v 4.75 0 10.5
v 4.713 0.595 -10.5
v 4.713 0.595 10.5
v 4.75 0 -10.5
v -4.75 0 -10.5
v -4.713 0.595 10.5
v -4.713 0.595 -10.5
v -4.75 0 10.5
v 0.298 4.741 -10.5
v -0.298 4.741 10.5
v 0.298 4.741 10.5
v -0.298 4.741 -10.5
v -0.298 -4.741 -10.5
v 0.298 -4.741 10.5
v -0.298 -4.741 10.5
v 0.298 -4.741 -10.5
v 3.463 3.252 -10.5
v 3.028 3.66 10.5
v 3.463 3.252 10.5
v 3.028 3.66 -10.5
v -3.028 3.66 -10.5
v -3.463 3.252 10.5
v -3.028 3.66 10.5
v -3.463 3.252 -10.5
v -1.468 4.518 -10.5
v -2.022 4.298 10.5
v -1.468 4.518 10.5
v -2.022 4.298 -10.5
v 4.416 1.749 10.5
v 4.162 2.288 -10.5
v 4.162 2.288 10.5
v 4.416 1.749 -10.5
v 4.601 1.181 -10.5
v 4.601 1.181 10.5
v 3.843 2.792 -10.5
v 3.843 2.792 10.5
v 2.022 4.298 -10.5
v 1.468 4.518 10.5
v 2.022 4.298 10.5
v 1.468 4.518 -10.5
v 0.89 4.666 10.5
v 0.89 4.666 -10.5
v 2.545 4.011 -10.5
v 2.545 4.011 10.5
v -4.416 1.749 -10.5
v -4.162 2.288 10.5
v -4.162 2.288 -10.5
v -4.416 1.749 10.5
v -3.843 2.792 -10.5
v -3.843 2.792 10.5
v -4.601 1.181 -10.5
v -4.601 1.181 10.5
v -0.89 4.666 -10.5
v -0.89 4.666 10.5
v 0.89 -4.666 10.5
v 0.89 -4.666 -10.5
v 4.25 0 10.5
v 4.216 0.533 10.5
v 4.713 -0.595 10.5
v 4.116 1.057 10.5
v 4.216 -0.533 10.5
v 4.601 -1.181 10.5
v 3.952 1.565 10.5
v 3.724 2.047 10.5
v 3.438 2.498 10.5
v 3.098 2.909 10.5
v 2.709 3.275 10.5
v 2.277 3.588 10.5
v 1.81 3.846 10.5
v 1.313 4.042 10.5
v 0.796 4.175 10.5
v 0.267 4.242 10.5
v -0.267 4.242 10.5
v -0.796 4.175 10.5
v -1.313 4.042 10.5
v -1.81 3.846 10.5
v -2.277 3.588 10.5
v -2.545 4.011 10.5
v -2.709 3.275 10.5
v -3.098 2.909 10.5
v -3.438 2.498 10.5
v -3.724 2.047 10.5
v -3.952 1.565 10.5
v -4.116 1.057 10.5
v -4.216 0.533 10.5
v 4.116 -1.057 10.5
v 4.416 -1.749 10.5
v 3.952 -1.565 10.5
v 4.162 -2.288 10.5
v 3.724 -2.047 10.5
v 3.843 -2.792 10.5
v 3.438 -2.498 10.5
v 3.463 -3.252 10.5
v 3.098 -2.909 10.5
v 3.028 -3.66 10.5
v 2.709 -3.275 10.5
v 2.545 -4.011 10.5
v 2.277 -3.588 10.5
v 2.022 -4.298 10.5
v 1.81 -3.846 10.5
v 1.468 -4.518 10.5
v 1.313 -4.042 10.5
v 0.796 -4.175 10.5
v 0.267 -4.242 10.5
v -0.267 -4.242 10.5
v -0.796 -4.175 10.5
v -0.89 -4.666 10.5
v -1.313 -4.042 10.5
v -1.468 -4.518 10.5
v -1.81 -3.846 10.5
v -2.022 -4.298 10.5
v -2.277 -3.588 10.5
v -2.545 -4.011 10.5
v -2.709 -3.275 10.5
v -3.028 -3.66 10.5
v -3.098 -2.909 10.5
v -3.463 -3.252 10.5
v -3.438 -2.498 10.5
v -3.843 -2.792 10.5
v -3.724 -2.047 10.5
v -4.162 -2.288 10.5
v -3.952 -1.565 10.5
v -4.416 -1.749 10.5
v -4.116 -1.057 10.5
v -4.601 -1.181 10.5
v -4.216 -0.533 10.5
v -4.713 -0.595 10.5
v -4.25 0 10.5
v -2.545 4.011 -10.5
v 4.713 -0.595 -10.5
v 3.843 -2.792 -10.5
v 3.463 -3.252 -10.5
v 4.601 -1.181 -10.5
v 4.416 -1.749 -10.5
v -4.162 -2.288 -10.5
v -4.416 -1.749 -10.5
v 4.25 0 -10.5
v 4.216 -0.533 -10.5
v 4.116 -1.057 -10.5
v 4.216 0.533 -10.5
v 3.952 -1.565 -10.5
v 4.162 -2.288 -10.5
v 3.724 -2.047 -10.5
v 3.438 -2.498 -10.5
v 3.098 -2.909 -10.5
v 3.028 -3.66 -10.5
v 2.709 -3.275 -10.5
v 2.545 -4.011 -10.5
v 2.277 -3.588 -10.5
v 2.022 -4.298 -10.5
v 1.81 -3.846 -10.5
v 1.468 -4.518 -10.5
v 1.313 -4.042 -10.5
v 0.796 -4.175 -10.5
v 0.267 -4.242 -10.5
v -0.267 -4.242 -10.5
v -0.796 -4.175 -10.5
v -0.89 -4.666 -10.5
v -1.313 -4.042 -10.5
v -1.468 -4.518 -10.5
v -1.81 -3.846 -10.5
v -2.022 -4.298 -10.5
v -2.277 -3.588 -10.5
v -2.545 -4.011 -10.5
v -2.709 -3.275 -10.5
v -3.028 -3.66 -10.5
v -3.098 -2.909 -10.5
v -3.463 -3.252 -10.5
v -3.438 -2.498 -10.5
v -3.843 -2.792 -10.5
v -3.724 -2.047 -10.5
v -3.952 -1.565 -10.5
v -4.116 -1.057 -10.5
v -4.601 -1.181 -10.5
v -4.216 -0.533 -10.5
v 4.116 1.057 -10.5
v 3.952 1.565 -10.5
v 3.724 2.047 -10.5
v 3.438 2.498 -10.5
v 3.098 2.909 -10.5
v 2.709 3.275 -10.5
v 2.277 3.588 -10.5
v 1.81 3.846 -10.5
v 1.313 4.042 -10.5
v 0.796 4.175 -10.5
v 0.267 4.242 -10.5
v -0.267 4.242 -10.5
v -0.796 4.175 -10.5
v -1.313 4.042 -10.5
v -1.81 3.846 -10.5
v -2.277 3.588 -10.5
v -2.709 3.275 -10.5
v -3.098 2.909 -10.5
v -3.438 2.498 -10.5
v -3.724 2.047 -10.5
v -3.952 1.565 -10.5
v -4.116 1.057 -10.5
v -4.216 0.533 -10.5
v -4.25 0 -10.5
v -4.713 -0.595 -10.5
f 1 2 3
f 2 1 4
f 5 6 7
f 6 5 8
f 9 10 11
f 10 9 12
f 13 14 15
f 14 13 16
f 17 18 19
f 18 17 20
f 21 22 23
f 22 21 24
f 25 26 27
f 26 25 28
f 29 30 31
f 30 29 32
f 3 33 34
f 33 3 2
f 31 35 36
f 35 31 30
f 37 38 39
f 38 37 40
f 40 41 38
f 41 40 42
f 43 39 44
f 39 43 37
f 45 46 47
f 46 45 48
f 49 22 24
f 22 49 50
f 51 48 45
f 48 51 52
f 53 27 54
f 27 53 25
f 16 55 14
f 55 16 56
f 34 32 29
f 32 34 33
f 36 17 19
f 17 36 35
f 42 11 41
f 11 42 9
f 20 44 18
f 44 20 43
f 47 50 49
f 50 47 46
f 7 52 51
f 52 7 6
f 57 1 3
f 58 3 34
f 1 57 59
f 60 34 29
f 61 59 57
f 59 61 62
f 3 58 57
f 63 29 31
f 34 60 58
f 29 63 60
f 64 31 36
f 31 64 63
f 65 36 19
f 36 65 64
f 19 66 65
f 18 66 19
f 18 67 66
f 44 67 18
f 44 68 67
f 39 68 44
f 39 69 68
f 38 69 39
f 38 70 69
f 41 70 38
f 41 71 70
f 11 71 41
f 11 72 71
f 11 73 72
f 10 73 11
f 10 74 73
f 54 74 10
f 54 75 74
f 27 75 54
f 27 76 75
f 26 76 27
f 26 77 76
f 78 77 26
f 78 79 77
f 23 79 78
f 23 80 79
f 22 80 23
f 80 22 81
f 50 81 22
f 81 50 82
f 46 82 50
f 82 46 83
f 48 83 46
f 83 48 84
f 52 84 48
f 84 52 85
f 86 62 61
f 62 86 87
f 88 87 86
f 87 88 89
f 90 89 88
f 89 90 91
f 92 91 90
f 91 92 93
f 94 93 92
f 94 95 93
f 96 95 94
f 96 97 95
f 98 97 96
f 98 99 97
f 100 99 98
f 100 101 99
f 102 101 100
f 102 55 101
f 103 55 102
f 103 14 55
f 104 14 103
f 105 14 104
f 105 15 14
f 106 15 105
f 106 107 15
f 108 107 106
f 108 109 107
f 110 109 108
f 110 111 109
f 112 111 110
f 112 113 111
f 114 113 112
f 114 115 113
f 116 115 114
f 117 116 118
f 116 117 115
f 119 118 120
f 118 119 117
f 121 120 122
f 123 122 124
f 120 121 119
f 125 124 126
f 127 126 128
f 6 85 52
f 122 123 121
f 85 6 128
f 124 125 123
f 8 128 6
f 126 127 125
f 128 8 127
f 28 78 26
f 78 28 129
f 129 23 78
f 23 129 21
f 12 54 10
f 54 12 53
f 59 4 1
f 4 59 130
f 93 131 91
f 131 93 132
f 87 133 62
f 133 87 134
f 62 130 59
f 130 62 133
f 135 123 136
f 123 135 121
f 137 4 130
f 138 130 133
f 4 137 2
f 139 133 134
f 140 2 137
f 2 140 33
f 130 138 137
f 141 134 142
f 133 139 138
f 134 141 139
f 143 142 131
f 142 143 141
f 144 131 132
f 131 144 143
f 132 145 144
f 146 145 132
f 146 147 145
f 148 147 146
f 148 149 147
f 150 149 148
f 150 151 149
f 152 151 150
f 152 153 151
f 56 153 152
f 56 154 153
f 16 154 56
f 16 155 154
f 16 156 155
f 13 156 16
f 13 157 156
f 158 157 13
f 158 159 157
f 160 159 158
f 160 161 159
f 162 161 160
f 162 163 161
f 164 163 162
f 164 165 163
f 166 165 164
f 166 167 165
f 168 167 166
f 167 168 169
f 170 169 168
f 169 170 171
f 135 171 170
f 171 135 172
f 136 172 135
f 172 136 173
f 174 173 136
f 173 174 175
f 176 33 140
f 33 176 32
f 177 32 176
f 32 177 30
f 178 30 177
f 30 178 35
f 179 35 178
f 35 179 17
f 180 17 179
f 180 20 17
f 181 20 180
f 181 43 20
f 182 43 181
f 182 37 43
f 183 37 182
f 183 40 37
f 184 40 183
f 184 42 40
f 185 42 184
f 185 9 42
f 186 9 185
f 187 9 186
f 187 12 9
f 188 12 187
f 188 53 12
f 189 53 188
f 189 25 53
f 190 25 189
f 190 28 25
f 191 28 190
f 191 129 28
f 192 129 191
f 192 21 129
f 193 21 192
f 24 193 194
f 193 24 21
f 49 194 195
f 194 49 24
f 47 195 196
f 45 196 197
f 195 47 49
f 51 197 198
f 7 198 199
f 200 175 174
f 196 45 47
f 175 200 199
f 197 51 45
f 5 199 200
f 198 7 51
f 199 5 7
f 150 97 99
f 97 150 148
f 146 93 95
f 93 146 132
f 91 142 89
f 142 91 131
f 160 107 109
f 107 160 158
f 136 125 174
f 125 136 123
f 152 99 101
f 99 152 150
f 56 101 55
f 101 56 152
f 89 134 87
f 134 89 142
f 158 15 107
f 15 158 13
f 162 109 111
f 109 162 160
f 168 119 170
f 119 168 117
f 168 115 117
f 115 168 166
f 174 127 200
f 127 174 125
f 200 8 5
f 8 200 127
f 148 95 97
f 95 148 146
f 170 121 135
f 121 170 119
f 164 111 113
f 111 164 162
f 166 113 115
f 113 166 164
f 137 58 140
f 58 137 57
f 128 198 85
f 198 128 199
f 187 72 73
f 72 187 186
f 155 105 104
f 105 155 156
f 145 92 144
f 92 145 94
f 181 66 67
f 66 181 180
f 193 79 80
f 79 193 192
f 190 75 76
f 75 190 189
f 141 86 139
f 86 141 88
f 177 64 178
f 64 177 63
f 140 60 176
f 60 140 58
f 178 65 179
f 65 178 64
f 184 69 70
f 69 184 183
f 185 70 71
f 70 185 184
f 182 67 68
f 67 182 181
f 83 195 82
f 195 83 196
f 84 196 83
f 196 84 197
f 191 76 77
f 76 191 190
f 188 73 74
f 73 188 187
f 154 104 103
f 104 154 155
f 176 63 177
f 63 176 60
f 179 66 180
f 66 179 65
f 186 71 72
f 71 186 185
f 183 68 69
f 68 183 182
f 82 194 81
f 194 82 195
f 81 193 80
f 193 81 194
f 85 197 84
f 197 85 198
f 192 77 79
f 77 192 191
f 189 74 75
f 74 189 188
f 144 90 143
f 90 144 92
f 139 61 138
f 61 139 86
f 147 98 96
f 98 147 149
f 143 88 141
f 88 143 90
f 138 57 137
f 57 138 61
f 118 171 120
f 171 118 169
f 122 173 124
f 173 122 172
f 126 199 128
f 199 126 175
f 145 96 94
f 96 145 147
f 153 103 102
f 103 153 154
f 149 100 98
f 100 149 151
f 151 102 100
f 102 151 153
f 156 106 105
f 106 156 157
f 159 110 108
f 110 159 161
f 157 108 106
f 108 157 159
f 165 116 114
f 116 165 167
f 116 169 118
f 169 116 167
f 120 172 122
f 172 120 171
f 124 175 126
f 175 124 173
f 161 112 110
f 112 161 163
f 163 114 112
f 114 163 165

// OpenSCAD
$fn = 50;


difference() {
	union() {
		translate(v = [0, 0, -10.5000000000]) {
			cylinder(h = 21, r = 4.7500000000);
		}
	}
	union() {
		translate(v = [0, 0, -100.0000000000]) {
			cylinder(h = 200, r = 4.2500000000);
		}
	}
}
